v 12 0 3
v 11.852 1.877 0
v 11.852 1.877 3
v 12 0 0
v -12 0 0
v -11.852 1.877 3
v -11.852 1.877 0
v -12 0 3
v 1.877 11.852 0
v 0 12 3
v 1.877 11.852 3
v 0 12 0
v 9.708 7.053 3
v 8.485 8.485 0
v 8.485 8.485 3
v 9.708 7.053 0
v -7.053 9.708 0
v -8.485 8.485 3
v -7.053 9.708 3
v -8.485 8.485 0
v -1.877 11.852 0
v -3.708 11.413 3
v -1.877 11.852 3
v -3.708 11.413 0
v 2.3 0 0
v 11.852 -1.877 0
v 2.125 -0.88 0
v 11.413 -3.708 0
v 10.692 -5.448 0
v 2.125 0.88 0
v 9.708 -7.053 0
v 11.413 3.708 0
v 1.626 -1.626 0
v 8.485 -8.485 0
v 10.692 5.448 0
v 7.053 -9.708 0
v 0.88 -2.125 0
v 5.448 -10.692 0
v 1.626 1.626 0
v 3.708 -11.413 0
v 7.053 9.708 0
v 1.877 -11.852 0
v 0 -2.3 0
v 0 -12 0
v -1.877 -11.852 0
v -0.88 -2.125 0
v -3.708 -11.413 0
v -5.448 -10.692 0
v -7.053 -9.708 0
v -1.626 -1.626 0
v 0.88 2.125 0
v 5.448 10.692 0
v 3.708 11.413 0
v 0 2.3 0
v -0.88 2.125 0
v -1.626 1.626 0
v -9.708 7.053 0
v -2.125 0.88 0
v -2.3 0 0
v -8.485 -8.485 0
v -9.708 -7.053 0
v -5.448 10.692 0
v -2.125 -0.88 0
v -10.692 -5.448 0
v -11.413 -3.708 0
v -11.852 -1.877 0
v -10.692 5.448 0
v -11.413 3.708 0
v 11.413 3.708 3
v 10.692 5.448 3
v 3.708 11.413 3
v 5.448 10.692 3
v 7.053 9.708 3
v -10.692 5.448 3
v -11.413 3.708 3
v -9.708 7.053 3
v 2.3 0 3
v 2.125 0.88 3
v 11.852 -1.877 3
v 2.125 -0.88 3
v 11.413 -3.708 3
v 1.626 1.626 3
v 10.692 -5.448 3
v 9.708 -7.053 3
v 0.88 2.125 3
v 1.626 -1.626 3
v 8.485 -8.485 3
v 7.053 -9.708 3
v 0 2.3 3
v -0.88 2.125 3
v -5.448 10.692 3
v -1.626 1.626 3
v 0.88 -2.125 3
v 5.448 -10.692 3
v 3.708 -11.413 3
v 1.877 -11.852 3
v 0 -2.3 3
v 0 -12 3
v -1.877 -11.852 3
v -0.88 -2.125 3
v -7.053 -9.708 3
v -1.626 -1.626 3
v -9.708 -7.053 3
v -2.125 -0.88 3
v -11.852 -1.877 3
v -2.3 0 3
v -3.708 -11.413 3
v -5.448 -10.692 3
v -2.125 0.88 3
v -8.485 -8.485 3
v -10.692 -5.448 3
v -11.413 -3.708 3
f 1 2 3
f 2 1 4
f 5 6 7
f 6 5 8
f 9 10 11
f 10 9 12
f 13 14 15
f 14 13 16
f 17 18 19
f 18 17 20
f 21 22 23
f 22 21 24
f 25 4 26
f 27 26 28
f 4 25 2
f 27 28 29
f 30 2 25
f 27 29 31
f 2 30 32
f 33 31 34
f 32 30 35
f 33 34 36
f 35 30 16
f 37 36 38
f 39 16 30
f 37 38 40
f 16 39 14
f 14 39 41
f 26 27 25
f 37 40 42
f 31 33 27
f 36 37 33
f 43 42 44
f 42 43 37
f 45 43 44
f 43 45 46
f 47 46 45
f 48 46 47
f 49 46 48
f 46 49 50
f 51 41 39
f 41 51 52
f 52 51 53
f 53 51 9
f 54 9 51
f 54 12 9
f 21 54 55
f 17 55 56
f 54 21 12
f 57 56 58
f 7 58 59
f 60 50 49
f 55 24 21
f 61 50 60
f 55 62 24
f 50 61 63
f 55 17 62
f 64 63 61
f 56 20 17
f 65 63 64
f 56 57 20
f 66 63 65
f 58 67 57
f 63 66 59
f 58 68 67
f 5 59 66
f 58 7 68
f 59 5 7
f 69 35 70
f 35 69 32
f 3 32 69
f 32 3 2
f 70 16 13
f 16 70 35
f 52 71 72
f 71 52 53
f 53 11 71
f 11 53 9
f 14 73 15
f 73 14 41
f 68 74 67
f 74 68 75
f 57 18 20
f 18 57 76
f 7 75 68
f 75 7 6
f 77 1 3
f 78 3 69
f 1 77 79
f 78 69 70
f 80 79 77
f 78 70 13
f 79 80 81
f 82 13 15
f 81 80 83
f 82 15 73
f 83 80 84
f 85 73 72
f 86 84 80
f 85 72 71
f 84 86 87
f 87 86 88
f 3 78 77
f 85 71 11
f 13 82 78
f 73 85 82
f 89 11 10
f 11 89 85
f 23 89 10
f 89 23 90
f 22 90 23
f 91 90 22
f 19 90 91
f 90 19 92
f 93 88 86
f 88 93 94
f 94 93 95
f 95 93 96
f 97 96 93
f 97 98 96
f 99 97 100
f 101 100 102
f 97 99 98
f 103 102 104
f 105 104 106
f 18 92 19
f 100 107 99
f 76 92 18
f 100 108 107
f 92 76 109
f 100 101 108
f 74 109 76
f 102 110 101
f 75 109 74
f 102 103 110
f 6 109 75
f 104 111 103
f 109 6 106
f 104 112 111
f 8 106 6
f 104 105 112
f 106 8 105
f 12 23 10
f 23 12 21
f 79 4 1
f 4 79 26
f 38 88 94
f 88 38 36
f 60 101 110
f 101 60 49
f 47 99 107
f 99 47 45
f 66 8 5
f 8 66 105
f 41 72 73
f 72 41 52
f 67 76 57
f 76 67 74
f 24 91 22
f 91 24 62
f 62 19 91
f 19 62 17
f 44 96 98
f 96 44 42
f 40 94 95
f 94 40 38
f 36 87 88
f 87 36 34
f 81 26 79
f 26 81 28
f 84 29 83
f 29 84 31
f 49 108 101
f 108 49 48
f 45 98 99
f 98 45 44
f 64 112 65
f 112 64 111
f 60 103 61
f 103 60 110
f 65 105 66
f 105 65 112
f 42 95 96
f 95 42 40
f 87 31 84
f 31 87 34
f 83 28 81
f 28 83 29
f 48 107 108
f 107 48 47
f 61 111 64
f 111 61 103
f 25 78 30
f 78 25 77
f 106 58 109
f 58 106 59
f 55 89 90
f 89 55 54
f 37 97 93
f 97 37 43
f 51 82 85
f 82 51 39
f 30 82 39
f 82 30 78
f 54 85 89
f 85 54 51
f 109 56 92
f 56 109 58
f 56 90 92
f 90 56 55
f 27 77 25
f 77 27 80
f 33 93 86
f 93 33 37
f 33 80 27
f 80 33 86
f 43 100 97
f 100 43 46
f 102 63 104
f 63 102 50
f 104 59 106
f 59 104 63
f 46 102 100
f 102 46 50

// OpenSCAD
difference(){
	cylinder(3,12,12, $fn=40);
	cylinder(3,2.3,2.3, $fn=16);
}
